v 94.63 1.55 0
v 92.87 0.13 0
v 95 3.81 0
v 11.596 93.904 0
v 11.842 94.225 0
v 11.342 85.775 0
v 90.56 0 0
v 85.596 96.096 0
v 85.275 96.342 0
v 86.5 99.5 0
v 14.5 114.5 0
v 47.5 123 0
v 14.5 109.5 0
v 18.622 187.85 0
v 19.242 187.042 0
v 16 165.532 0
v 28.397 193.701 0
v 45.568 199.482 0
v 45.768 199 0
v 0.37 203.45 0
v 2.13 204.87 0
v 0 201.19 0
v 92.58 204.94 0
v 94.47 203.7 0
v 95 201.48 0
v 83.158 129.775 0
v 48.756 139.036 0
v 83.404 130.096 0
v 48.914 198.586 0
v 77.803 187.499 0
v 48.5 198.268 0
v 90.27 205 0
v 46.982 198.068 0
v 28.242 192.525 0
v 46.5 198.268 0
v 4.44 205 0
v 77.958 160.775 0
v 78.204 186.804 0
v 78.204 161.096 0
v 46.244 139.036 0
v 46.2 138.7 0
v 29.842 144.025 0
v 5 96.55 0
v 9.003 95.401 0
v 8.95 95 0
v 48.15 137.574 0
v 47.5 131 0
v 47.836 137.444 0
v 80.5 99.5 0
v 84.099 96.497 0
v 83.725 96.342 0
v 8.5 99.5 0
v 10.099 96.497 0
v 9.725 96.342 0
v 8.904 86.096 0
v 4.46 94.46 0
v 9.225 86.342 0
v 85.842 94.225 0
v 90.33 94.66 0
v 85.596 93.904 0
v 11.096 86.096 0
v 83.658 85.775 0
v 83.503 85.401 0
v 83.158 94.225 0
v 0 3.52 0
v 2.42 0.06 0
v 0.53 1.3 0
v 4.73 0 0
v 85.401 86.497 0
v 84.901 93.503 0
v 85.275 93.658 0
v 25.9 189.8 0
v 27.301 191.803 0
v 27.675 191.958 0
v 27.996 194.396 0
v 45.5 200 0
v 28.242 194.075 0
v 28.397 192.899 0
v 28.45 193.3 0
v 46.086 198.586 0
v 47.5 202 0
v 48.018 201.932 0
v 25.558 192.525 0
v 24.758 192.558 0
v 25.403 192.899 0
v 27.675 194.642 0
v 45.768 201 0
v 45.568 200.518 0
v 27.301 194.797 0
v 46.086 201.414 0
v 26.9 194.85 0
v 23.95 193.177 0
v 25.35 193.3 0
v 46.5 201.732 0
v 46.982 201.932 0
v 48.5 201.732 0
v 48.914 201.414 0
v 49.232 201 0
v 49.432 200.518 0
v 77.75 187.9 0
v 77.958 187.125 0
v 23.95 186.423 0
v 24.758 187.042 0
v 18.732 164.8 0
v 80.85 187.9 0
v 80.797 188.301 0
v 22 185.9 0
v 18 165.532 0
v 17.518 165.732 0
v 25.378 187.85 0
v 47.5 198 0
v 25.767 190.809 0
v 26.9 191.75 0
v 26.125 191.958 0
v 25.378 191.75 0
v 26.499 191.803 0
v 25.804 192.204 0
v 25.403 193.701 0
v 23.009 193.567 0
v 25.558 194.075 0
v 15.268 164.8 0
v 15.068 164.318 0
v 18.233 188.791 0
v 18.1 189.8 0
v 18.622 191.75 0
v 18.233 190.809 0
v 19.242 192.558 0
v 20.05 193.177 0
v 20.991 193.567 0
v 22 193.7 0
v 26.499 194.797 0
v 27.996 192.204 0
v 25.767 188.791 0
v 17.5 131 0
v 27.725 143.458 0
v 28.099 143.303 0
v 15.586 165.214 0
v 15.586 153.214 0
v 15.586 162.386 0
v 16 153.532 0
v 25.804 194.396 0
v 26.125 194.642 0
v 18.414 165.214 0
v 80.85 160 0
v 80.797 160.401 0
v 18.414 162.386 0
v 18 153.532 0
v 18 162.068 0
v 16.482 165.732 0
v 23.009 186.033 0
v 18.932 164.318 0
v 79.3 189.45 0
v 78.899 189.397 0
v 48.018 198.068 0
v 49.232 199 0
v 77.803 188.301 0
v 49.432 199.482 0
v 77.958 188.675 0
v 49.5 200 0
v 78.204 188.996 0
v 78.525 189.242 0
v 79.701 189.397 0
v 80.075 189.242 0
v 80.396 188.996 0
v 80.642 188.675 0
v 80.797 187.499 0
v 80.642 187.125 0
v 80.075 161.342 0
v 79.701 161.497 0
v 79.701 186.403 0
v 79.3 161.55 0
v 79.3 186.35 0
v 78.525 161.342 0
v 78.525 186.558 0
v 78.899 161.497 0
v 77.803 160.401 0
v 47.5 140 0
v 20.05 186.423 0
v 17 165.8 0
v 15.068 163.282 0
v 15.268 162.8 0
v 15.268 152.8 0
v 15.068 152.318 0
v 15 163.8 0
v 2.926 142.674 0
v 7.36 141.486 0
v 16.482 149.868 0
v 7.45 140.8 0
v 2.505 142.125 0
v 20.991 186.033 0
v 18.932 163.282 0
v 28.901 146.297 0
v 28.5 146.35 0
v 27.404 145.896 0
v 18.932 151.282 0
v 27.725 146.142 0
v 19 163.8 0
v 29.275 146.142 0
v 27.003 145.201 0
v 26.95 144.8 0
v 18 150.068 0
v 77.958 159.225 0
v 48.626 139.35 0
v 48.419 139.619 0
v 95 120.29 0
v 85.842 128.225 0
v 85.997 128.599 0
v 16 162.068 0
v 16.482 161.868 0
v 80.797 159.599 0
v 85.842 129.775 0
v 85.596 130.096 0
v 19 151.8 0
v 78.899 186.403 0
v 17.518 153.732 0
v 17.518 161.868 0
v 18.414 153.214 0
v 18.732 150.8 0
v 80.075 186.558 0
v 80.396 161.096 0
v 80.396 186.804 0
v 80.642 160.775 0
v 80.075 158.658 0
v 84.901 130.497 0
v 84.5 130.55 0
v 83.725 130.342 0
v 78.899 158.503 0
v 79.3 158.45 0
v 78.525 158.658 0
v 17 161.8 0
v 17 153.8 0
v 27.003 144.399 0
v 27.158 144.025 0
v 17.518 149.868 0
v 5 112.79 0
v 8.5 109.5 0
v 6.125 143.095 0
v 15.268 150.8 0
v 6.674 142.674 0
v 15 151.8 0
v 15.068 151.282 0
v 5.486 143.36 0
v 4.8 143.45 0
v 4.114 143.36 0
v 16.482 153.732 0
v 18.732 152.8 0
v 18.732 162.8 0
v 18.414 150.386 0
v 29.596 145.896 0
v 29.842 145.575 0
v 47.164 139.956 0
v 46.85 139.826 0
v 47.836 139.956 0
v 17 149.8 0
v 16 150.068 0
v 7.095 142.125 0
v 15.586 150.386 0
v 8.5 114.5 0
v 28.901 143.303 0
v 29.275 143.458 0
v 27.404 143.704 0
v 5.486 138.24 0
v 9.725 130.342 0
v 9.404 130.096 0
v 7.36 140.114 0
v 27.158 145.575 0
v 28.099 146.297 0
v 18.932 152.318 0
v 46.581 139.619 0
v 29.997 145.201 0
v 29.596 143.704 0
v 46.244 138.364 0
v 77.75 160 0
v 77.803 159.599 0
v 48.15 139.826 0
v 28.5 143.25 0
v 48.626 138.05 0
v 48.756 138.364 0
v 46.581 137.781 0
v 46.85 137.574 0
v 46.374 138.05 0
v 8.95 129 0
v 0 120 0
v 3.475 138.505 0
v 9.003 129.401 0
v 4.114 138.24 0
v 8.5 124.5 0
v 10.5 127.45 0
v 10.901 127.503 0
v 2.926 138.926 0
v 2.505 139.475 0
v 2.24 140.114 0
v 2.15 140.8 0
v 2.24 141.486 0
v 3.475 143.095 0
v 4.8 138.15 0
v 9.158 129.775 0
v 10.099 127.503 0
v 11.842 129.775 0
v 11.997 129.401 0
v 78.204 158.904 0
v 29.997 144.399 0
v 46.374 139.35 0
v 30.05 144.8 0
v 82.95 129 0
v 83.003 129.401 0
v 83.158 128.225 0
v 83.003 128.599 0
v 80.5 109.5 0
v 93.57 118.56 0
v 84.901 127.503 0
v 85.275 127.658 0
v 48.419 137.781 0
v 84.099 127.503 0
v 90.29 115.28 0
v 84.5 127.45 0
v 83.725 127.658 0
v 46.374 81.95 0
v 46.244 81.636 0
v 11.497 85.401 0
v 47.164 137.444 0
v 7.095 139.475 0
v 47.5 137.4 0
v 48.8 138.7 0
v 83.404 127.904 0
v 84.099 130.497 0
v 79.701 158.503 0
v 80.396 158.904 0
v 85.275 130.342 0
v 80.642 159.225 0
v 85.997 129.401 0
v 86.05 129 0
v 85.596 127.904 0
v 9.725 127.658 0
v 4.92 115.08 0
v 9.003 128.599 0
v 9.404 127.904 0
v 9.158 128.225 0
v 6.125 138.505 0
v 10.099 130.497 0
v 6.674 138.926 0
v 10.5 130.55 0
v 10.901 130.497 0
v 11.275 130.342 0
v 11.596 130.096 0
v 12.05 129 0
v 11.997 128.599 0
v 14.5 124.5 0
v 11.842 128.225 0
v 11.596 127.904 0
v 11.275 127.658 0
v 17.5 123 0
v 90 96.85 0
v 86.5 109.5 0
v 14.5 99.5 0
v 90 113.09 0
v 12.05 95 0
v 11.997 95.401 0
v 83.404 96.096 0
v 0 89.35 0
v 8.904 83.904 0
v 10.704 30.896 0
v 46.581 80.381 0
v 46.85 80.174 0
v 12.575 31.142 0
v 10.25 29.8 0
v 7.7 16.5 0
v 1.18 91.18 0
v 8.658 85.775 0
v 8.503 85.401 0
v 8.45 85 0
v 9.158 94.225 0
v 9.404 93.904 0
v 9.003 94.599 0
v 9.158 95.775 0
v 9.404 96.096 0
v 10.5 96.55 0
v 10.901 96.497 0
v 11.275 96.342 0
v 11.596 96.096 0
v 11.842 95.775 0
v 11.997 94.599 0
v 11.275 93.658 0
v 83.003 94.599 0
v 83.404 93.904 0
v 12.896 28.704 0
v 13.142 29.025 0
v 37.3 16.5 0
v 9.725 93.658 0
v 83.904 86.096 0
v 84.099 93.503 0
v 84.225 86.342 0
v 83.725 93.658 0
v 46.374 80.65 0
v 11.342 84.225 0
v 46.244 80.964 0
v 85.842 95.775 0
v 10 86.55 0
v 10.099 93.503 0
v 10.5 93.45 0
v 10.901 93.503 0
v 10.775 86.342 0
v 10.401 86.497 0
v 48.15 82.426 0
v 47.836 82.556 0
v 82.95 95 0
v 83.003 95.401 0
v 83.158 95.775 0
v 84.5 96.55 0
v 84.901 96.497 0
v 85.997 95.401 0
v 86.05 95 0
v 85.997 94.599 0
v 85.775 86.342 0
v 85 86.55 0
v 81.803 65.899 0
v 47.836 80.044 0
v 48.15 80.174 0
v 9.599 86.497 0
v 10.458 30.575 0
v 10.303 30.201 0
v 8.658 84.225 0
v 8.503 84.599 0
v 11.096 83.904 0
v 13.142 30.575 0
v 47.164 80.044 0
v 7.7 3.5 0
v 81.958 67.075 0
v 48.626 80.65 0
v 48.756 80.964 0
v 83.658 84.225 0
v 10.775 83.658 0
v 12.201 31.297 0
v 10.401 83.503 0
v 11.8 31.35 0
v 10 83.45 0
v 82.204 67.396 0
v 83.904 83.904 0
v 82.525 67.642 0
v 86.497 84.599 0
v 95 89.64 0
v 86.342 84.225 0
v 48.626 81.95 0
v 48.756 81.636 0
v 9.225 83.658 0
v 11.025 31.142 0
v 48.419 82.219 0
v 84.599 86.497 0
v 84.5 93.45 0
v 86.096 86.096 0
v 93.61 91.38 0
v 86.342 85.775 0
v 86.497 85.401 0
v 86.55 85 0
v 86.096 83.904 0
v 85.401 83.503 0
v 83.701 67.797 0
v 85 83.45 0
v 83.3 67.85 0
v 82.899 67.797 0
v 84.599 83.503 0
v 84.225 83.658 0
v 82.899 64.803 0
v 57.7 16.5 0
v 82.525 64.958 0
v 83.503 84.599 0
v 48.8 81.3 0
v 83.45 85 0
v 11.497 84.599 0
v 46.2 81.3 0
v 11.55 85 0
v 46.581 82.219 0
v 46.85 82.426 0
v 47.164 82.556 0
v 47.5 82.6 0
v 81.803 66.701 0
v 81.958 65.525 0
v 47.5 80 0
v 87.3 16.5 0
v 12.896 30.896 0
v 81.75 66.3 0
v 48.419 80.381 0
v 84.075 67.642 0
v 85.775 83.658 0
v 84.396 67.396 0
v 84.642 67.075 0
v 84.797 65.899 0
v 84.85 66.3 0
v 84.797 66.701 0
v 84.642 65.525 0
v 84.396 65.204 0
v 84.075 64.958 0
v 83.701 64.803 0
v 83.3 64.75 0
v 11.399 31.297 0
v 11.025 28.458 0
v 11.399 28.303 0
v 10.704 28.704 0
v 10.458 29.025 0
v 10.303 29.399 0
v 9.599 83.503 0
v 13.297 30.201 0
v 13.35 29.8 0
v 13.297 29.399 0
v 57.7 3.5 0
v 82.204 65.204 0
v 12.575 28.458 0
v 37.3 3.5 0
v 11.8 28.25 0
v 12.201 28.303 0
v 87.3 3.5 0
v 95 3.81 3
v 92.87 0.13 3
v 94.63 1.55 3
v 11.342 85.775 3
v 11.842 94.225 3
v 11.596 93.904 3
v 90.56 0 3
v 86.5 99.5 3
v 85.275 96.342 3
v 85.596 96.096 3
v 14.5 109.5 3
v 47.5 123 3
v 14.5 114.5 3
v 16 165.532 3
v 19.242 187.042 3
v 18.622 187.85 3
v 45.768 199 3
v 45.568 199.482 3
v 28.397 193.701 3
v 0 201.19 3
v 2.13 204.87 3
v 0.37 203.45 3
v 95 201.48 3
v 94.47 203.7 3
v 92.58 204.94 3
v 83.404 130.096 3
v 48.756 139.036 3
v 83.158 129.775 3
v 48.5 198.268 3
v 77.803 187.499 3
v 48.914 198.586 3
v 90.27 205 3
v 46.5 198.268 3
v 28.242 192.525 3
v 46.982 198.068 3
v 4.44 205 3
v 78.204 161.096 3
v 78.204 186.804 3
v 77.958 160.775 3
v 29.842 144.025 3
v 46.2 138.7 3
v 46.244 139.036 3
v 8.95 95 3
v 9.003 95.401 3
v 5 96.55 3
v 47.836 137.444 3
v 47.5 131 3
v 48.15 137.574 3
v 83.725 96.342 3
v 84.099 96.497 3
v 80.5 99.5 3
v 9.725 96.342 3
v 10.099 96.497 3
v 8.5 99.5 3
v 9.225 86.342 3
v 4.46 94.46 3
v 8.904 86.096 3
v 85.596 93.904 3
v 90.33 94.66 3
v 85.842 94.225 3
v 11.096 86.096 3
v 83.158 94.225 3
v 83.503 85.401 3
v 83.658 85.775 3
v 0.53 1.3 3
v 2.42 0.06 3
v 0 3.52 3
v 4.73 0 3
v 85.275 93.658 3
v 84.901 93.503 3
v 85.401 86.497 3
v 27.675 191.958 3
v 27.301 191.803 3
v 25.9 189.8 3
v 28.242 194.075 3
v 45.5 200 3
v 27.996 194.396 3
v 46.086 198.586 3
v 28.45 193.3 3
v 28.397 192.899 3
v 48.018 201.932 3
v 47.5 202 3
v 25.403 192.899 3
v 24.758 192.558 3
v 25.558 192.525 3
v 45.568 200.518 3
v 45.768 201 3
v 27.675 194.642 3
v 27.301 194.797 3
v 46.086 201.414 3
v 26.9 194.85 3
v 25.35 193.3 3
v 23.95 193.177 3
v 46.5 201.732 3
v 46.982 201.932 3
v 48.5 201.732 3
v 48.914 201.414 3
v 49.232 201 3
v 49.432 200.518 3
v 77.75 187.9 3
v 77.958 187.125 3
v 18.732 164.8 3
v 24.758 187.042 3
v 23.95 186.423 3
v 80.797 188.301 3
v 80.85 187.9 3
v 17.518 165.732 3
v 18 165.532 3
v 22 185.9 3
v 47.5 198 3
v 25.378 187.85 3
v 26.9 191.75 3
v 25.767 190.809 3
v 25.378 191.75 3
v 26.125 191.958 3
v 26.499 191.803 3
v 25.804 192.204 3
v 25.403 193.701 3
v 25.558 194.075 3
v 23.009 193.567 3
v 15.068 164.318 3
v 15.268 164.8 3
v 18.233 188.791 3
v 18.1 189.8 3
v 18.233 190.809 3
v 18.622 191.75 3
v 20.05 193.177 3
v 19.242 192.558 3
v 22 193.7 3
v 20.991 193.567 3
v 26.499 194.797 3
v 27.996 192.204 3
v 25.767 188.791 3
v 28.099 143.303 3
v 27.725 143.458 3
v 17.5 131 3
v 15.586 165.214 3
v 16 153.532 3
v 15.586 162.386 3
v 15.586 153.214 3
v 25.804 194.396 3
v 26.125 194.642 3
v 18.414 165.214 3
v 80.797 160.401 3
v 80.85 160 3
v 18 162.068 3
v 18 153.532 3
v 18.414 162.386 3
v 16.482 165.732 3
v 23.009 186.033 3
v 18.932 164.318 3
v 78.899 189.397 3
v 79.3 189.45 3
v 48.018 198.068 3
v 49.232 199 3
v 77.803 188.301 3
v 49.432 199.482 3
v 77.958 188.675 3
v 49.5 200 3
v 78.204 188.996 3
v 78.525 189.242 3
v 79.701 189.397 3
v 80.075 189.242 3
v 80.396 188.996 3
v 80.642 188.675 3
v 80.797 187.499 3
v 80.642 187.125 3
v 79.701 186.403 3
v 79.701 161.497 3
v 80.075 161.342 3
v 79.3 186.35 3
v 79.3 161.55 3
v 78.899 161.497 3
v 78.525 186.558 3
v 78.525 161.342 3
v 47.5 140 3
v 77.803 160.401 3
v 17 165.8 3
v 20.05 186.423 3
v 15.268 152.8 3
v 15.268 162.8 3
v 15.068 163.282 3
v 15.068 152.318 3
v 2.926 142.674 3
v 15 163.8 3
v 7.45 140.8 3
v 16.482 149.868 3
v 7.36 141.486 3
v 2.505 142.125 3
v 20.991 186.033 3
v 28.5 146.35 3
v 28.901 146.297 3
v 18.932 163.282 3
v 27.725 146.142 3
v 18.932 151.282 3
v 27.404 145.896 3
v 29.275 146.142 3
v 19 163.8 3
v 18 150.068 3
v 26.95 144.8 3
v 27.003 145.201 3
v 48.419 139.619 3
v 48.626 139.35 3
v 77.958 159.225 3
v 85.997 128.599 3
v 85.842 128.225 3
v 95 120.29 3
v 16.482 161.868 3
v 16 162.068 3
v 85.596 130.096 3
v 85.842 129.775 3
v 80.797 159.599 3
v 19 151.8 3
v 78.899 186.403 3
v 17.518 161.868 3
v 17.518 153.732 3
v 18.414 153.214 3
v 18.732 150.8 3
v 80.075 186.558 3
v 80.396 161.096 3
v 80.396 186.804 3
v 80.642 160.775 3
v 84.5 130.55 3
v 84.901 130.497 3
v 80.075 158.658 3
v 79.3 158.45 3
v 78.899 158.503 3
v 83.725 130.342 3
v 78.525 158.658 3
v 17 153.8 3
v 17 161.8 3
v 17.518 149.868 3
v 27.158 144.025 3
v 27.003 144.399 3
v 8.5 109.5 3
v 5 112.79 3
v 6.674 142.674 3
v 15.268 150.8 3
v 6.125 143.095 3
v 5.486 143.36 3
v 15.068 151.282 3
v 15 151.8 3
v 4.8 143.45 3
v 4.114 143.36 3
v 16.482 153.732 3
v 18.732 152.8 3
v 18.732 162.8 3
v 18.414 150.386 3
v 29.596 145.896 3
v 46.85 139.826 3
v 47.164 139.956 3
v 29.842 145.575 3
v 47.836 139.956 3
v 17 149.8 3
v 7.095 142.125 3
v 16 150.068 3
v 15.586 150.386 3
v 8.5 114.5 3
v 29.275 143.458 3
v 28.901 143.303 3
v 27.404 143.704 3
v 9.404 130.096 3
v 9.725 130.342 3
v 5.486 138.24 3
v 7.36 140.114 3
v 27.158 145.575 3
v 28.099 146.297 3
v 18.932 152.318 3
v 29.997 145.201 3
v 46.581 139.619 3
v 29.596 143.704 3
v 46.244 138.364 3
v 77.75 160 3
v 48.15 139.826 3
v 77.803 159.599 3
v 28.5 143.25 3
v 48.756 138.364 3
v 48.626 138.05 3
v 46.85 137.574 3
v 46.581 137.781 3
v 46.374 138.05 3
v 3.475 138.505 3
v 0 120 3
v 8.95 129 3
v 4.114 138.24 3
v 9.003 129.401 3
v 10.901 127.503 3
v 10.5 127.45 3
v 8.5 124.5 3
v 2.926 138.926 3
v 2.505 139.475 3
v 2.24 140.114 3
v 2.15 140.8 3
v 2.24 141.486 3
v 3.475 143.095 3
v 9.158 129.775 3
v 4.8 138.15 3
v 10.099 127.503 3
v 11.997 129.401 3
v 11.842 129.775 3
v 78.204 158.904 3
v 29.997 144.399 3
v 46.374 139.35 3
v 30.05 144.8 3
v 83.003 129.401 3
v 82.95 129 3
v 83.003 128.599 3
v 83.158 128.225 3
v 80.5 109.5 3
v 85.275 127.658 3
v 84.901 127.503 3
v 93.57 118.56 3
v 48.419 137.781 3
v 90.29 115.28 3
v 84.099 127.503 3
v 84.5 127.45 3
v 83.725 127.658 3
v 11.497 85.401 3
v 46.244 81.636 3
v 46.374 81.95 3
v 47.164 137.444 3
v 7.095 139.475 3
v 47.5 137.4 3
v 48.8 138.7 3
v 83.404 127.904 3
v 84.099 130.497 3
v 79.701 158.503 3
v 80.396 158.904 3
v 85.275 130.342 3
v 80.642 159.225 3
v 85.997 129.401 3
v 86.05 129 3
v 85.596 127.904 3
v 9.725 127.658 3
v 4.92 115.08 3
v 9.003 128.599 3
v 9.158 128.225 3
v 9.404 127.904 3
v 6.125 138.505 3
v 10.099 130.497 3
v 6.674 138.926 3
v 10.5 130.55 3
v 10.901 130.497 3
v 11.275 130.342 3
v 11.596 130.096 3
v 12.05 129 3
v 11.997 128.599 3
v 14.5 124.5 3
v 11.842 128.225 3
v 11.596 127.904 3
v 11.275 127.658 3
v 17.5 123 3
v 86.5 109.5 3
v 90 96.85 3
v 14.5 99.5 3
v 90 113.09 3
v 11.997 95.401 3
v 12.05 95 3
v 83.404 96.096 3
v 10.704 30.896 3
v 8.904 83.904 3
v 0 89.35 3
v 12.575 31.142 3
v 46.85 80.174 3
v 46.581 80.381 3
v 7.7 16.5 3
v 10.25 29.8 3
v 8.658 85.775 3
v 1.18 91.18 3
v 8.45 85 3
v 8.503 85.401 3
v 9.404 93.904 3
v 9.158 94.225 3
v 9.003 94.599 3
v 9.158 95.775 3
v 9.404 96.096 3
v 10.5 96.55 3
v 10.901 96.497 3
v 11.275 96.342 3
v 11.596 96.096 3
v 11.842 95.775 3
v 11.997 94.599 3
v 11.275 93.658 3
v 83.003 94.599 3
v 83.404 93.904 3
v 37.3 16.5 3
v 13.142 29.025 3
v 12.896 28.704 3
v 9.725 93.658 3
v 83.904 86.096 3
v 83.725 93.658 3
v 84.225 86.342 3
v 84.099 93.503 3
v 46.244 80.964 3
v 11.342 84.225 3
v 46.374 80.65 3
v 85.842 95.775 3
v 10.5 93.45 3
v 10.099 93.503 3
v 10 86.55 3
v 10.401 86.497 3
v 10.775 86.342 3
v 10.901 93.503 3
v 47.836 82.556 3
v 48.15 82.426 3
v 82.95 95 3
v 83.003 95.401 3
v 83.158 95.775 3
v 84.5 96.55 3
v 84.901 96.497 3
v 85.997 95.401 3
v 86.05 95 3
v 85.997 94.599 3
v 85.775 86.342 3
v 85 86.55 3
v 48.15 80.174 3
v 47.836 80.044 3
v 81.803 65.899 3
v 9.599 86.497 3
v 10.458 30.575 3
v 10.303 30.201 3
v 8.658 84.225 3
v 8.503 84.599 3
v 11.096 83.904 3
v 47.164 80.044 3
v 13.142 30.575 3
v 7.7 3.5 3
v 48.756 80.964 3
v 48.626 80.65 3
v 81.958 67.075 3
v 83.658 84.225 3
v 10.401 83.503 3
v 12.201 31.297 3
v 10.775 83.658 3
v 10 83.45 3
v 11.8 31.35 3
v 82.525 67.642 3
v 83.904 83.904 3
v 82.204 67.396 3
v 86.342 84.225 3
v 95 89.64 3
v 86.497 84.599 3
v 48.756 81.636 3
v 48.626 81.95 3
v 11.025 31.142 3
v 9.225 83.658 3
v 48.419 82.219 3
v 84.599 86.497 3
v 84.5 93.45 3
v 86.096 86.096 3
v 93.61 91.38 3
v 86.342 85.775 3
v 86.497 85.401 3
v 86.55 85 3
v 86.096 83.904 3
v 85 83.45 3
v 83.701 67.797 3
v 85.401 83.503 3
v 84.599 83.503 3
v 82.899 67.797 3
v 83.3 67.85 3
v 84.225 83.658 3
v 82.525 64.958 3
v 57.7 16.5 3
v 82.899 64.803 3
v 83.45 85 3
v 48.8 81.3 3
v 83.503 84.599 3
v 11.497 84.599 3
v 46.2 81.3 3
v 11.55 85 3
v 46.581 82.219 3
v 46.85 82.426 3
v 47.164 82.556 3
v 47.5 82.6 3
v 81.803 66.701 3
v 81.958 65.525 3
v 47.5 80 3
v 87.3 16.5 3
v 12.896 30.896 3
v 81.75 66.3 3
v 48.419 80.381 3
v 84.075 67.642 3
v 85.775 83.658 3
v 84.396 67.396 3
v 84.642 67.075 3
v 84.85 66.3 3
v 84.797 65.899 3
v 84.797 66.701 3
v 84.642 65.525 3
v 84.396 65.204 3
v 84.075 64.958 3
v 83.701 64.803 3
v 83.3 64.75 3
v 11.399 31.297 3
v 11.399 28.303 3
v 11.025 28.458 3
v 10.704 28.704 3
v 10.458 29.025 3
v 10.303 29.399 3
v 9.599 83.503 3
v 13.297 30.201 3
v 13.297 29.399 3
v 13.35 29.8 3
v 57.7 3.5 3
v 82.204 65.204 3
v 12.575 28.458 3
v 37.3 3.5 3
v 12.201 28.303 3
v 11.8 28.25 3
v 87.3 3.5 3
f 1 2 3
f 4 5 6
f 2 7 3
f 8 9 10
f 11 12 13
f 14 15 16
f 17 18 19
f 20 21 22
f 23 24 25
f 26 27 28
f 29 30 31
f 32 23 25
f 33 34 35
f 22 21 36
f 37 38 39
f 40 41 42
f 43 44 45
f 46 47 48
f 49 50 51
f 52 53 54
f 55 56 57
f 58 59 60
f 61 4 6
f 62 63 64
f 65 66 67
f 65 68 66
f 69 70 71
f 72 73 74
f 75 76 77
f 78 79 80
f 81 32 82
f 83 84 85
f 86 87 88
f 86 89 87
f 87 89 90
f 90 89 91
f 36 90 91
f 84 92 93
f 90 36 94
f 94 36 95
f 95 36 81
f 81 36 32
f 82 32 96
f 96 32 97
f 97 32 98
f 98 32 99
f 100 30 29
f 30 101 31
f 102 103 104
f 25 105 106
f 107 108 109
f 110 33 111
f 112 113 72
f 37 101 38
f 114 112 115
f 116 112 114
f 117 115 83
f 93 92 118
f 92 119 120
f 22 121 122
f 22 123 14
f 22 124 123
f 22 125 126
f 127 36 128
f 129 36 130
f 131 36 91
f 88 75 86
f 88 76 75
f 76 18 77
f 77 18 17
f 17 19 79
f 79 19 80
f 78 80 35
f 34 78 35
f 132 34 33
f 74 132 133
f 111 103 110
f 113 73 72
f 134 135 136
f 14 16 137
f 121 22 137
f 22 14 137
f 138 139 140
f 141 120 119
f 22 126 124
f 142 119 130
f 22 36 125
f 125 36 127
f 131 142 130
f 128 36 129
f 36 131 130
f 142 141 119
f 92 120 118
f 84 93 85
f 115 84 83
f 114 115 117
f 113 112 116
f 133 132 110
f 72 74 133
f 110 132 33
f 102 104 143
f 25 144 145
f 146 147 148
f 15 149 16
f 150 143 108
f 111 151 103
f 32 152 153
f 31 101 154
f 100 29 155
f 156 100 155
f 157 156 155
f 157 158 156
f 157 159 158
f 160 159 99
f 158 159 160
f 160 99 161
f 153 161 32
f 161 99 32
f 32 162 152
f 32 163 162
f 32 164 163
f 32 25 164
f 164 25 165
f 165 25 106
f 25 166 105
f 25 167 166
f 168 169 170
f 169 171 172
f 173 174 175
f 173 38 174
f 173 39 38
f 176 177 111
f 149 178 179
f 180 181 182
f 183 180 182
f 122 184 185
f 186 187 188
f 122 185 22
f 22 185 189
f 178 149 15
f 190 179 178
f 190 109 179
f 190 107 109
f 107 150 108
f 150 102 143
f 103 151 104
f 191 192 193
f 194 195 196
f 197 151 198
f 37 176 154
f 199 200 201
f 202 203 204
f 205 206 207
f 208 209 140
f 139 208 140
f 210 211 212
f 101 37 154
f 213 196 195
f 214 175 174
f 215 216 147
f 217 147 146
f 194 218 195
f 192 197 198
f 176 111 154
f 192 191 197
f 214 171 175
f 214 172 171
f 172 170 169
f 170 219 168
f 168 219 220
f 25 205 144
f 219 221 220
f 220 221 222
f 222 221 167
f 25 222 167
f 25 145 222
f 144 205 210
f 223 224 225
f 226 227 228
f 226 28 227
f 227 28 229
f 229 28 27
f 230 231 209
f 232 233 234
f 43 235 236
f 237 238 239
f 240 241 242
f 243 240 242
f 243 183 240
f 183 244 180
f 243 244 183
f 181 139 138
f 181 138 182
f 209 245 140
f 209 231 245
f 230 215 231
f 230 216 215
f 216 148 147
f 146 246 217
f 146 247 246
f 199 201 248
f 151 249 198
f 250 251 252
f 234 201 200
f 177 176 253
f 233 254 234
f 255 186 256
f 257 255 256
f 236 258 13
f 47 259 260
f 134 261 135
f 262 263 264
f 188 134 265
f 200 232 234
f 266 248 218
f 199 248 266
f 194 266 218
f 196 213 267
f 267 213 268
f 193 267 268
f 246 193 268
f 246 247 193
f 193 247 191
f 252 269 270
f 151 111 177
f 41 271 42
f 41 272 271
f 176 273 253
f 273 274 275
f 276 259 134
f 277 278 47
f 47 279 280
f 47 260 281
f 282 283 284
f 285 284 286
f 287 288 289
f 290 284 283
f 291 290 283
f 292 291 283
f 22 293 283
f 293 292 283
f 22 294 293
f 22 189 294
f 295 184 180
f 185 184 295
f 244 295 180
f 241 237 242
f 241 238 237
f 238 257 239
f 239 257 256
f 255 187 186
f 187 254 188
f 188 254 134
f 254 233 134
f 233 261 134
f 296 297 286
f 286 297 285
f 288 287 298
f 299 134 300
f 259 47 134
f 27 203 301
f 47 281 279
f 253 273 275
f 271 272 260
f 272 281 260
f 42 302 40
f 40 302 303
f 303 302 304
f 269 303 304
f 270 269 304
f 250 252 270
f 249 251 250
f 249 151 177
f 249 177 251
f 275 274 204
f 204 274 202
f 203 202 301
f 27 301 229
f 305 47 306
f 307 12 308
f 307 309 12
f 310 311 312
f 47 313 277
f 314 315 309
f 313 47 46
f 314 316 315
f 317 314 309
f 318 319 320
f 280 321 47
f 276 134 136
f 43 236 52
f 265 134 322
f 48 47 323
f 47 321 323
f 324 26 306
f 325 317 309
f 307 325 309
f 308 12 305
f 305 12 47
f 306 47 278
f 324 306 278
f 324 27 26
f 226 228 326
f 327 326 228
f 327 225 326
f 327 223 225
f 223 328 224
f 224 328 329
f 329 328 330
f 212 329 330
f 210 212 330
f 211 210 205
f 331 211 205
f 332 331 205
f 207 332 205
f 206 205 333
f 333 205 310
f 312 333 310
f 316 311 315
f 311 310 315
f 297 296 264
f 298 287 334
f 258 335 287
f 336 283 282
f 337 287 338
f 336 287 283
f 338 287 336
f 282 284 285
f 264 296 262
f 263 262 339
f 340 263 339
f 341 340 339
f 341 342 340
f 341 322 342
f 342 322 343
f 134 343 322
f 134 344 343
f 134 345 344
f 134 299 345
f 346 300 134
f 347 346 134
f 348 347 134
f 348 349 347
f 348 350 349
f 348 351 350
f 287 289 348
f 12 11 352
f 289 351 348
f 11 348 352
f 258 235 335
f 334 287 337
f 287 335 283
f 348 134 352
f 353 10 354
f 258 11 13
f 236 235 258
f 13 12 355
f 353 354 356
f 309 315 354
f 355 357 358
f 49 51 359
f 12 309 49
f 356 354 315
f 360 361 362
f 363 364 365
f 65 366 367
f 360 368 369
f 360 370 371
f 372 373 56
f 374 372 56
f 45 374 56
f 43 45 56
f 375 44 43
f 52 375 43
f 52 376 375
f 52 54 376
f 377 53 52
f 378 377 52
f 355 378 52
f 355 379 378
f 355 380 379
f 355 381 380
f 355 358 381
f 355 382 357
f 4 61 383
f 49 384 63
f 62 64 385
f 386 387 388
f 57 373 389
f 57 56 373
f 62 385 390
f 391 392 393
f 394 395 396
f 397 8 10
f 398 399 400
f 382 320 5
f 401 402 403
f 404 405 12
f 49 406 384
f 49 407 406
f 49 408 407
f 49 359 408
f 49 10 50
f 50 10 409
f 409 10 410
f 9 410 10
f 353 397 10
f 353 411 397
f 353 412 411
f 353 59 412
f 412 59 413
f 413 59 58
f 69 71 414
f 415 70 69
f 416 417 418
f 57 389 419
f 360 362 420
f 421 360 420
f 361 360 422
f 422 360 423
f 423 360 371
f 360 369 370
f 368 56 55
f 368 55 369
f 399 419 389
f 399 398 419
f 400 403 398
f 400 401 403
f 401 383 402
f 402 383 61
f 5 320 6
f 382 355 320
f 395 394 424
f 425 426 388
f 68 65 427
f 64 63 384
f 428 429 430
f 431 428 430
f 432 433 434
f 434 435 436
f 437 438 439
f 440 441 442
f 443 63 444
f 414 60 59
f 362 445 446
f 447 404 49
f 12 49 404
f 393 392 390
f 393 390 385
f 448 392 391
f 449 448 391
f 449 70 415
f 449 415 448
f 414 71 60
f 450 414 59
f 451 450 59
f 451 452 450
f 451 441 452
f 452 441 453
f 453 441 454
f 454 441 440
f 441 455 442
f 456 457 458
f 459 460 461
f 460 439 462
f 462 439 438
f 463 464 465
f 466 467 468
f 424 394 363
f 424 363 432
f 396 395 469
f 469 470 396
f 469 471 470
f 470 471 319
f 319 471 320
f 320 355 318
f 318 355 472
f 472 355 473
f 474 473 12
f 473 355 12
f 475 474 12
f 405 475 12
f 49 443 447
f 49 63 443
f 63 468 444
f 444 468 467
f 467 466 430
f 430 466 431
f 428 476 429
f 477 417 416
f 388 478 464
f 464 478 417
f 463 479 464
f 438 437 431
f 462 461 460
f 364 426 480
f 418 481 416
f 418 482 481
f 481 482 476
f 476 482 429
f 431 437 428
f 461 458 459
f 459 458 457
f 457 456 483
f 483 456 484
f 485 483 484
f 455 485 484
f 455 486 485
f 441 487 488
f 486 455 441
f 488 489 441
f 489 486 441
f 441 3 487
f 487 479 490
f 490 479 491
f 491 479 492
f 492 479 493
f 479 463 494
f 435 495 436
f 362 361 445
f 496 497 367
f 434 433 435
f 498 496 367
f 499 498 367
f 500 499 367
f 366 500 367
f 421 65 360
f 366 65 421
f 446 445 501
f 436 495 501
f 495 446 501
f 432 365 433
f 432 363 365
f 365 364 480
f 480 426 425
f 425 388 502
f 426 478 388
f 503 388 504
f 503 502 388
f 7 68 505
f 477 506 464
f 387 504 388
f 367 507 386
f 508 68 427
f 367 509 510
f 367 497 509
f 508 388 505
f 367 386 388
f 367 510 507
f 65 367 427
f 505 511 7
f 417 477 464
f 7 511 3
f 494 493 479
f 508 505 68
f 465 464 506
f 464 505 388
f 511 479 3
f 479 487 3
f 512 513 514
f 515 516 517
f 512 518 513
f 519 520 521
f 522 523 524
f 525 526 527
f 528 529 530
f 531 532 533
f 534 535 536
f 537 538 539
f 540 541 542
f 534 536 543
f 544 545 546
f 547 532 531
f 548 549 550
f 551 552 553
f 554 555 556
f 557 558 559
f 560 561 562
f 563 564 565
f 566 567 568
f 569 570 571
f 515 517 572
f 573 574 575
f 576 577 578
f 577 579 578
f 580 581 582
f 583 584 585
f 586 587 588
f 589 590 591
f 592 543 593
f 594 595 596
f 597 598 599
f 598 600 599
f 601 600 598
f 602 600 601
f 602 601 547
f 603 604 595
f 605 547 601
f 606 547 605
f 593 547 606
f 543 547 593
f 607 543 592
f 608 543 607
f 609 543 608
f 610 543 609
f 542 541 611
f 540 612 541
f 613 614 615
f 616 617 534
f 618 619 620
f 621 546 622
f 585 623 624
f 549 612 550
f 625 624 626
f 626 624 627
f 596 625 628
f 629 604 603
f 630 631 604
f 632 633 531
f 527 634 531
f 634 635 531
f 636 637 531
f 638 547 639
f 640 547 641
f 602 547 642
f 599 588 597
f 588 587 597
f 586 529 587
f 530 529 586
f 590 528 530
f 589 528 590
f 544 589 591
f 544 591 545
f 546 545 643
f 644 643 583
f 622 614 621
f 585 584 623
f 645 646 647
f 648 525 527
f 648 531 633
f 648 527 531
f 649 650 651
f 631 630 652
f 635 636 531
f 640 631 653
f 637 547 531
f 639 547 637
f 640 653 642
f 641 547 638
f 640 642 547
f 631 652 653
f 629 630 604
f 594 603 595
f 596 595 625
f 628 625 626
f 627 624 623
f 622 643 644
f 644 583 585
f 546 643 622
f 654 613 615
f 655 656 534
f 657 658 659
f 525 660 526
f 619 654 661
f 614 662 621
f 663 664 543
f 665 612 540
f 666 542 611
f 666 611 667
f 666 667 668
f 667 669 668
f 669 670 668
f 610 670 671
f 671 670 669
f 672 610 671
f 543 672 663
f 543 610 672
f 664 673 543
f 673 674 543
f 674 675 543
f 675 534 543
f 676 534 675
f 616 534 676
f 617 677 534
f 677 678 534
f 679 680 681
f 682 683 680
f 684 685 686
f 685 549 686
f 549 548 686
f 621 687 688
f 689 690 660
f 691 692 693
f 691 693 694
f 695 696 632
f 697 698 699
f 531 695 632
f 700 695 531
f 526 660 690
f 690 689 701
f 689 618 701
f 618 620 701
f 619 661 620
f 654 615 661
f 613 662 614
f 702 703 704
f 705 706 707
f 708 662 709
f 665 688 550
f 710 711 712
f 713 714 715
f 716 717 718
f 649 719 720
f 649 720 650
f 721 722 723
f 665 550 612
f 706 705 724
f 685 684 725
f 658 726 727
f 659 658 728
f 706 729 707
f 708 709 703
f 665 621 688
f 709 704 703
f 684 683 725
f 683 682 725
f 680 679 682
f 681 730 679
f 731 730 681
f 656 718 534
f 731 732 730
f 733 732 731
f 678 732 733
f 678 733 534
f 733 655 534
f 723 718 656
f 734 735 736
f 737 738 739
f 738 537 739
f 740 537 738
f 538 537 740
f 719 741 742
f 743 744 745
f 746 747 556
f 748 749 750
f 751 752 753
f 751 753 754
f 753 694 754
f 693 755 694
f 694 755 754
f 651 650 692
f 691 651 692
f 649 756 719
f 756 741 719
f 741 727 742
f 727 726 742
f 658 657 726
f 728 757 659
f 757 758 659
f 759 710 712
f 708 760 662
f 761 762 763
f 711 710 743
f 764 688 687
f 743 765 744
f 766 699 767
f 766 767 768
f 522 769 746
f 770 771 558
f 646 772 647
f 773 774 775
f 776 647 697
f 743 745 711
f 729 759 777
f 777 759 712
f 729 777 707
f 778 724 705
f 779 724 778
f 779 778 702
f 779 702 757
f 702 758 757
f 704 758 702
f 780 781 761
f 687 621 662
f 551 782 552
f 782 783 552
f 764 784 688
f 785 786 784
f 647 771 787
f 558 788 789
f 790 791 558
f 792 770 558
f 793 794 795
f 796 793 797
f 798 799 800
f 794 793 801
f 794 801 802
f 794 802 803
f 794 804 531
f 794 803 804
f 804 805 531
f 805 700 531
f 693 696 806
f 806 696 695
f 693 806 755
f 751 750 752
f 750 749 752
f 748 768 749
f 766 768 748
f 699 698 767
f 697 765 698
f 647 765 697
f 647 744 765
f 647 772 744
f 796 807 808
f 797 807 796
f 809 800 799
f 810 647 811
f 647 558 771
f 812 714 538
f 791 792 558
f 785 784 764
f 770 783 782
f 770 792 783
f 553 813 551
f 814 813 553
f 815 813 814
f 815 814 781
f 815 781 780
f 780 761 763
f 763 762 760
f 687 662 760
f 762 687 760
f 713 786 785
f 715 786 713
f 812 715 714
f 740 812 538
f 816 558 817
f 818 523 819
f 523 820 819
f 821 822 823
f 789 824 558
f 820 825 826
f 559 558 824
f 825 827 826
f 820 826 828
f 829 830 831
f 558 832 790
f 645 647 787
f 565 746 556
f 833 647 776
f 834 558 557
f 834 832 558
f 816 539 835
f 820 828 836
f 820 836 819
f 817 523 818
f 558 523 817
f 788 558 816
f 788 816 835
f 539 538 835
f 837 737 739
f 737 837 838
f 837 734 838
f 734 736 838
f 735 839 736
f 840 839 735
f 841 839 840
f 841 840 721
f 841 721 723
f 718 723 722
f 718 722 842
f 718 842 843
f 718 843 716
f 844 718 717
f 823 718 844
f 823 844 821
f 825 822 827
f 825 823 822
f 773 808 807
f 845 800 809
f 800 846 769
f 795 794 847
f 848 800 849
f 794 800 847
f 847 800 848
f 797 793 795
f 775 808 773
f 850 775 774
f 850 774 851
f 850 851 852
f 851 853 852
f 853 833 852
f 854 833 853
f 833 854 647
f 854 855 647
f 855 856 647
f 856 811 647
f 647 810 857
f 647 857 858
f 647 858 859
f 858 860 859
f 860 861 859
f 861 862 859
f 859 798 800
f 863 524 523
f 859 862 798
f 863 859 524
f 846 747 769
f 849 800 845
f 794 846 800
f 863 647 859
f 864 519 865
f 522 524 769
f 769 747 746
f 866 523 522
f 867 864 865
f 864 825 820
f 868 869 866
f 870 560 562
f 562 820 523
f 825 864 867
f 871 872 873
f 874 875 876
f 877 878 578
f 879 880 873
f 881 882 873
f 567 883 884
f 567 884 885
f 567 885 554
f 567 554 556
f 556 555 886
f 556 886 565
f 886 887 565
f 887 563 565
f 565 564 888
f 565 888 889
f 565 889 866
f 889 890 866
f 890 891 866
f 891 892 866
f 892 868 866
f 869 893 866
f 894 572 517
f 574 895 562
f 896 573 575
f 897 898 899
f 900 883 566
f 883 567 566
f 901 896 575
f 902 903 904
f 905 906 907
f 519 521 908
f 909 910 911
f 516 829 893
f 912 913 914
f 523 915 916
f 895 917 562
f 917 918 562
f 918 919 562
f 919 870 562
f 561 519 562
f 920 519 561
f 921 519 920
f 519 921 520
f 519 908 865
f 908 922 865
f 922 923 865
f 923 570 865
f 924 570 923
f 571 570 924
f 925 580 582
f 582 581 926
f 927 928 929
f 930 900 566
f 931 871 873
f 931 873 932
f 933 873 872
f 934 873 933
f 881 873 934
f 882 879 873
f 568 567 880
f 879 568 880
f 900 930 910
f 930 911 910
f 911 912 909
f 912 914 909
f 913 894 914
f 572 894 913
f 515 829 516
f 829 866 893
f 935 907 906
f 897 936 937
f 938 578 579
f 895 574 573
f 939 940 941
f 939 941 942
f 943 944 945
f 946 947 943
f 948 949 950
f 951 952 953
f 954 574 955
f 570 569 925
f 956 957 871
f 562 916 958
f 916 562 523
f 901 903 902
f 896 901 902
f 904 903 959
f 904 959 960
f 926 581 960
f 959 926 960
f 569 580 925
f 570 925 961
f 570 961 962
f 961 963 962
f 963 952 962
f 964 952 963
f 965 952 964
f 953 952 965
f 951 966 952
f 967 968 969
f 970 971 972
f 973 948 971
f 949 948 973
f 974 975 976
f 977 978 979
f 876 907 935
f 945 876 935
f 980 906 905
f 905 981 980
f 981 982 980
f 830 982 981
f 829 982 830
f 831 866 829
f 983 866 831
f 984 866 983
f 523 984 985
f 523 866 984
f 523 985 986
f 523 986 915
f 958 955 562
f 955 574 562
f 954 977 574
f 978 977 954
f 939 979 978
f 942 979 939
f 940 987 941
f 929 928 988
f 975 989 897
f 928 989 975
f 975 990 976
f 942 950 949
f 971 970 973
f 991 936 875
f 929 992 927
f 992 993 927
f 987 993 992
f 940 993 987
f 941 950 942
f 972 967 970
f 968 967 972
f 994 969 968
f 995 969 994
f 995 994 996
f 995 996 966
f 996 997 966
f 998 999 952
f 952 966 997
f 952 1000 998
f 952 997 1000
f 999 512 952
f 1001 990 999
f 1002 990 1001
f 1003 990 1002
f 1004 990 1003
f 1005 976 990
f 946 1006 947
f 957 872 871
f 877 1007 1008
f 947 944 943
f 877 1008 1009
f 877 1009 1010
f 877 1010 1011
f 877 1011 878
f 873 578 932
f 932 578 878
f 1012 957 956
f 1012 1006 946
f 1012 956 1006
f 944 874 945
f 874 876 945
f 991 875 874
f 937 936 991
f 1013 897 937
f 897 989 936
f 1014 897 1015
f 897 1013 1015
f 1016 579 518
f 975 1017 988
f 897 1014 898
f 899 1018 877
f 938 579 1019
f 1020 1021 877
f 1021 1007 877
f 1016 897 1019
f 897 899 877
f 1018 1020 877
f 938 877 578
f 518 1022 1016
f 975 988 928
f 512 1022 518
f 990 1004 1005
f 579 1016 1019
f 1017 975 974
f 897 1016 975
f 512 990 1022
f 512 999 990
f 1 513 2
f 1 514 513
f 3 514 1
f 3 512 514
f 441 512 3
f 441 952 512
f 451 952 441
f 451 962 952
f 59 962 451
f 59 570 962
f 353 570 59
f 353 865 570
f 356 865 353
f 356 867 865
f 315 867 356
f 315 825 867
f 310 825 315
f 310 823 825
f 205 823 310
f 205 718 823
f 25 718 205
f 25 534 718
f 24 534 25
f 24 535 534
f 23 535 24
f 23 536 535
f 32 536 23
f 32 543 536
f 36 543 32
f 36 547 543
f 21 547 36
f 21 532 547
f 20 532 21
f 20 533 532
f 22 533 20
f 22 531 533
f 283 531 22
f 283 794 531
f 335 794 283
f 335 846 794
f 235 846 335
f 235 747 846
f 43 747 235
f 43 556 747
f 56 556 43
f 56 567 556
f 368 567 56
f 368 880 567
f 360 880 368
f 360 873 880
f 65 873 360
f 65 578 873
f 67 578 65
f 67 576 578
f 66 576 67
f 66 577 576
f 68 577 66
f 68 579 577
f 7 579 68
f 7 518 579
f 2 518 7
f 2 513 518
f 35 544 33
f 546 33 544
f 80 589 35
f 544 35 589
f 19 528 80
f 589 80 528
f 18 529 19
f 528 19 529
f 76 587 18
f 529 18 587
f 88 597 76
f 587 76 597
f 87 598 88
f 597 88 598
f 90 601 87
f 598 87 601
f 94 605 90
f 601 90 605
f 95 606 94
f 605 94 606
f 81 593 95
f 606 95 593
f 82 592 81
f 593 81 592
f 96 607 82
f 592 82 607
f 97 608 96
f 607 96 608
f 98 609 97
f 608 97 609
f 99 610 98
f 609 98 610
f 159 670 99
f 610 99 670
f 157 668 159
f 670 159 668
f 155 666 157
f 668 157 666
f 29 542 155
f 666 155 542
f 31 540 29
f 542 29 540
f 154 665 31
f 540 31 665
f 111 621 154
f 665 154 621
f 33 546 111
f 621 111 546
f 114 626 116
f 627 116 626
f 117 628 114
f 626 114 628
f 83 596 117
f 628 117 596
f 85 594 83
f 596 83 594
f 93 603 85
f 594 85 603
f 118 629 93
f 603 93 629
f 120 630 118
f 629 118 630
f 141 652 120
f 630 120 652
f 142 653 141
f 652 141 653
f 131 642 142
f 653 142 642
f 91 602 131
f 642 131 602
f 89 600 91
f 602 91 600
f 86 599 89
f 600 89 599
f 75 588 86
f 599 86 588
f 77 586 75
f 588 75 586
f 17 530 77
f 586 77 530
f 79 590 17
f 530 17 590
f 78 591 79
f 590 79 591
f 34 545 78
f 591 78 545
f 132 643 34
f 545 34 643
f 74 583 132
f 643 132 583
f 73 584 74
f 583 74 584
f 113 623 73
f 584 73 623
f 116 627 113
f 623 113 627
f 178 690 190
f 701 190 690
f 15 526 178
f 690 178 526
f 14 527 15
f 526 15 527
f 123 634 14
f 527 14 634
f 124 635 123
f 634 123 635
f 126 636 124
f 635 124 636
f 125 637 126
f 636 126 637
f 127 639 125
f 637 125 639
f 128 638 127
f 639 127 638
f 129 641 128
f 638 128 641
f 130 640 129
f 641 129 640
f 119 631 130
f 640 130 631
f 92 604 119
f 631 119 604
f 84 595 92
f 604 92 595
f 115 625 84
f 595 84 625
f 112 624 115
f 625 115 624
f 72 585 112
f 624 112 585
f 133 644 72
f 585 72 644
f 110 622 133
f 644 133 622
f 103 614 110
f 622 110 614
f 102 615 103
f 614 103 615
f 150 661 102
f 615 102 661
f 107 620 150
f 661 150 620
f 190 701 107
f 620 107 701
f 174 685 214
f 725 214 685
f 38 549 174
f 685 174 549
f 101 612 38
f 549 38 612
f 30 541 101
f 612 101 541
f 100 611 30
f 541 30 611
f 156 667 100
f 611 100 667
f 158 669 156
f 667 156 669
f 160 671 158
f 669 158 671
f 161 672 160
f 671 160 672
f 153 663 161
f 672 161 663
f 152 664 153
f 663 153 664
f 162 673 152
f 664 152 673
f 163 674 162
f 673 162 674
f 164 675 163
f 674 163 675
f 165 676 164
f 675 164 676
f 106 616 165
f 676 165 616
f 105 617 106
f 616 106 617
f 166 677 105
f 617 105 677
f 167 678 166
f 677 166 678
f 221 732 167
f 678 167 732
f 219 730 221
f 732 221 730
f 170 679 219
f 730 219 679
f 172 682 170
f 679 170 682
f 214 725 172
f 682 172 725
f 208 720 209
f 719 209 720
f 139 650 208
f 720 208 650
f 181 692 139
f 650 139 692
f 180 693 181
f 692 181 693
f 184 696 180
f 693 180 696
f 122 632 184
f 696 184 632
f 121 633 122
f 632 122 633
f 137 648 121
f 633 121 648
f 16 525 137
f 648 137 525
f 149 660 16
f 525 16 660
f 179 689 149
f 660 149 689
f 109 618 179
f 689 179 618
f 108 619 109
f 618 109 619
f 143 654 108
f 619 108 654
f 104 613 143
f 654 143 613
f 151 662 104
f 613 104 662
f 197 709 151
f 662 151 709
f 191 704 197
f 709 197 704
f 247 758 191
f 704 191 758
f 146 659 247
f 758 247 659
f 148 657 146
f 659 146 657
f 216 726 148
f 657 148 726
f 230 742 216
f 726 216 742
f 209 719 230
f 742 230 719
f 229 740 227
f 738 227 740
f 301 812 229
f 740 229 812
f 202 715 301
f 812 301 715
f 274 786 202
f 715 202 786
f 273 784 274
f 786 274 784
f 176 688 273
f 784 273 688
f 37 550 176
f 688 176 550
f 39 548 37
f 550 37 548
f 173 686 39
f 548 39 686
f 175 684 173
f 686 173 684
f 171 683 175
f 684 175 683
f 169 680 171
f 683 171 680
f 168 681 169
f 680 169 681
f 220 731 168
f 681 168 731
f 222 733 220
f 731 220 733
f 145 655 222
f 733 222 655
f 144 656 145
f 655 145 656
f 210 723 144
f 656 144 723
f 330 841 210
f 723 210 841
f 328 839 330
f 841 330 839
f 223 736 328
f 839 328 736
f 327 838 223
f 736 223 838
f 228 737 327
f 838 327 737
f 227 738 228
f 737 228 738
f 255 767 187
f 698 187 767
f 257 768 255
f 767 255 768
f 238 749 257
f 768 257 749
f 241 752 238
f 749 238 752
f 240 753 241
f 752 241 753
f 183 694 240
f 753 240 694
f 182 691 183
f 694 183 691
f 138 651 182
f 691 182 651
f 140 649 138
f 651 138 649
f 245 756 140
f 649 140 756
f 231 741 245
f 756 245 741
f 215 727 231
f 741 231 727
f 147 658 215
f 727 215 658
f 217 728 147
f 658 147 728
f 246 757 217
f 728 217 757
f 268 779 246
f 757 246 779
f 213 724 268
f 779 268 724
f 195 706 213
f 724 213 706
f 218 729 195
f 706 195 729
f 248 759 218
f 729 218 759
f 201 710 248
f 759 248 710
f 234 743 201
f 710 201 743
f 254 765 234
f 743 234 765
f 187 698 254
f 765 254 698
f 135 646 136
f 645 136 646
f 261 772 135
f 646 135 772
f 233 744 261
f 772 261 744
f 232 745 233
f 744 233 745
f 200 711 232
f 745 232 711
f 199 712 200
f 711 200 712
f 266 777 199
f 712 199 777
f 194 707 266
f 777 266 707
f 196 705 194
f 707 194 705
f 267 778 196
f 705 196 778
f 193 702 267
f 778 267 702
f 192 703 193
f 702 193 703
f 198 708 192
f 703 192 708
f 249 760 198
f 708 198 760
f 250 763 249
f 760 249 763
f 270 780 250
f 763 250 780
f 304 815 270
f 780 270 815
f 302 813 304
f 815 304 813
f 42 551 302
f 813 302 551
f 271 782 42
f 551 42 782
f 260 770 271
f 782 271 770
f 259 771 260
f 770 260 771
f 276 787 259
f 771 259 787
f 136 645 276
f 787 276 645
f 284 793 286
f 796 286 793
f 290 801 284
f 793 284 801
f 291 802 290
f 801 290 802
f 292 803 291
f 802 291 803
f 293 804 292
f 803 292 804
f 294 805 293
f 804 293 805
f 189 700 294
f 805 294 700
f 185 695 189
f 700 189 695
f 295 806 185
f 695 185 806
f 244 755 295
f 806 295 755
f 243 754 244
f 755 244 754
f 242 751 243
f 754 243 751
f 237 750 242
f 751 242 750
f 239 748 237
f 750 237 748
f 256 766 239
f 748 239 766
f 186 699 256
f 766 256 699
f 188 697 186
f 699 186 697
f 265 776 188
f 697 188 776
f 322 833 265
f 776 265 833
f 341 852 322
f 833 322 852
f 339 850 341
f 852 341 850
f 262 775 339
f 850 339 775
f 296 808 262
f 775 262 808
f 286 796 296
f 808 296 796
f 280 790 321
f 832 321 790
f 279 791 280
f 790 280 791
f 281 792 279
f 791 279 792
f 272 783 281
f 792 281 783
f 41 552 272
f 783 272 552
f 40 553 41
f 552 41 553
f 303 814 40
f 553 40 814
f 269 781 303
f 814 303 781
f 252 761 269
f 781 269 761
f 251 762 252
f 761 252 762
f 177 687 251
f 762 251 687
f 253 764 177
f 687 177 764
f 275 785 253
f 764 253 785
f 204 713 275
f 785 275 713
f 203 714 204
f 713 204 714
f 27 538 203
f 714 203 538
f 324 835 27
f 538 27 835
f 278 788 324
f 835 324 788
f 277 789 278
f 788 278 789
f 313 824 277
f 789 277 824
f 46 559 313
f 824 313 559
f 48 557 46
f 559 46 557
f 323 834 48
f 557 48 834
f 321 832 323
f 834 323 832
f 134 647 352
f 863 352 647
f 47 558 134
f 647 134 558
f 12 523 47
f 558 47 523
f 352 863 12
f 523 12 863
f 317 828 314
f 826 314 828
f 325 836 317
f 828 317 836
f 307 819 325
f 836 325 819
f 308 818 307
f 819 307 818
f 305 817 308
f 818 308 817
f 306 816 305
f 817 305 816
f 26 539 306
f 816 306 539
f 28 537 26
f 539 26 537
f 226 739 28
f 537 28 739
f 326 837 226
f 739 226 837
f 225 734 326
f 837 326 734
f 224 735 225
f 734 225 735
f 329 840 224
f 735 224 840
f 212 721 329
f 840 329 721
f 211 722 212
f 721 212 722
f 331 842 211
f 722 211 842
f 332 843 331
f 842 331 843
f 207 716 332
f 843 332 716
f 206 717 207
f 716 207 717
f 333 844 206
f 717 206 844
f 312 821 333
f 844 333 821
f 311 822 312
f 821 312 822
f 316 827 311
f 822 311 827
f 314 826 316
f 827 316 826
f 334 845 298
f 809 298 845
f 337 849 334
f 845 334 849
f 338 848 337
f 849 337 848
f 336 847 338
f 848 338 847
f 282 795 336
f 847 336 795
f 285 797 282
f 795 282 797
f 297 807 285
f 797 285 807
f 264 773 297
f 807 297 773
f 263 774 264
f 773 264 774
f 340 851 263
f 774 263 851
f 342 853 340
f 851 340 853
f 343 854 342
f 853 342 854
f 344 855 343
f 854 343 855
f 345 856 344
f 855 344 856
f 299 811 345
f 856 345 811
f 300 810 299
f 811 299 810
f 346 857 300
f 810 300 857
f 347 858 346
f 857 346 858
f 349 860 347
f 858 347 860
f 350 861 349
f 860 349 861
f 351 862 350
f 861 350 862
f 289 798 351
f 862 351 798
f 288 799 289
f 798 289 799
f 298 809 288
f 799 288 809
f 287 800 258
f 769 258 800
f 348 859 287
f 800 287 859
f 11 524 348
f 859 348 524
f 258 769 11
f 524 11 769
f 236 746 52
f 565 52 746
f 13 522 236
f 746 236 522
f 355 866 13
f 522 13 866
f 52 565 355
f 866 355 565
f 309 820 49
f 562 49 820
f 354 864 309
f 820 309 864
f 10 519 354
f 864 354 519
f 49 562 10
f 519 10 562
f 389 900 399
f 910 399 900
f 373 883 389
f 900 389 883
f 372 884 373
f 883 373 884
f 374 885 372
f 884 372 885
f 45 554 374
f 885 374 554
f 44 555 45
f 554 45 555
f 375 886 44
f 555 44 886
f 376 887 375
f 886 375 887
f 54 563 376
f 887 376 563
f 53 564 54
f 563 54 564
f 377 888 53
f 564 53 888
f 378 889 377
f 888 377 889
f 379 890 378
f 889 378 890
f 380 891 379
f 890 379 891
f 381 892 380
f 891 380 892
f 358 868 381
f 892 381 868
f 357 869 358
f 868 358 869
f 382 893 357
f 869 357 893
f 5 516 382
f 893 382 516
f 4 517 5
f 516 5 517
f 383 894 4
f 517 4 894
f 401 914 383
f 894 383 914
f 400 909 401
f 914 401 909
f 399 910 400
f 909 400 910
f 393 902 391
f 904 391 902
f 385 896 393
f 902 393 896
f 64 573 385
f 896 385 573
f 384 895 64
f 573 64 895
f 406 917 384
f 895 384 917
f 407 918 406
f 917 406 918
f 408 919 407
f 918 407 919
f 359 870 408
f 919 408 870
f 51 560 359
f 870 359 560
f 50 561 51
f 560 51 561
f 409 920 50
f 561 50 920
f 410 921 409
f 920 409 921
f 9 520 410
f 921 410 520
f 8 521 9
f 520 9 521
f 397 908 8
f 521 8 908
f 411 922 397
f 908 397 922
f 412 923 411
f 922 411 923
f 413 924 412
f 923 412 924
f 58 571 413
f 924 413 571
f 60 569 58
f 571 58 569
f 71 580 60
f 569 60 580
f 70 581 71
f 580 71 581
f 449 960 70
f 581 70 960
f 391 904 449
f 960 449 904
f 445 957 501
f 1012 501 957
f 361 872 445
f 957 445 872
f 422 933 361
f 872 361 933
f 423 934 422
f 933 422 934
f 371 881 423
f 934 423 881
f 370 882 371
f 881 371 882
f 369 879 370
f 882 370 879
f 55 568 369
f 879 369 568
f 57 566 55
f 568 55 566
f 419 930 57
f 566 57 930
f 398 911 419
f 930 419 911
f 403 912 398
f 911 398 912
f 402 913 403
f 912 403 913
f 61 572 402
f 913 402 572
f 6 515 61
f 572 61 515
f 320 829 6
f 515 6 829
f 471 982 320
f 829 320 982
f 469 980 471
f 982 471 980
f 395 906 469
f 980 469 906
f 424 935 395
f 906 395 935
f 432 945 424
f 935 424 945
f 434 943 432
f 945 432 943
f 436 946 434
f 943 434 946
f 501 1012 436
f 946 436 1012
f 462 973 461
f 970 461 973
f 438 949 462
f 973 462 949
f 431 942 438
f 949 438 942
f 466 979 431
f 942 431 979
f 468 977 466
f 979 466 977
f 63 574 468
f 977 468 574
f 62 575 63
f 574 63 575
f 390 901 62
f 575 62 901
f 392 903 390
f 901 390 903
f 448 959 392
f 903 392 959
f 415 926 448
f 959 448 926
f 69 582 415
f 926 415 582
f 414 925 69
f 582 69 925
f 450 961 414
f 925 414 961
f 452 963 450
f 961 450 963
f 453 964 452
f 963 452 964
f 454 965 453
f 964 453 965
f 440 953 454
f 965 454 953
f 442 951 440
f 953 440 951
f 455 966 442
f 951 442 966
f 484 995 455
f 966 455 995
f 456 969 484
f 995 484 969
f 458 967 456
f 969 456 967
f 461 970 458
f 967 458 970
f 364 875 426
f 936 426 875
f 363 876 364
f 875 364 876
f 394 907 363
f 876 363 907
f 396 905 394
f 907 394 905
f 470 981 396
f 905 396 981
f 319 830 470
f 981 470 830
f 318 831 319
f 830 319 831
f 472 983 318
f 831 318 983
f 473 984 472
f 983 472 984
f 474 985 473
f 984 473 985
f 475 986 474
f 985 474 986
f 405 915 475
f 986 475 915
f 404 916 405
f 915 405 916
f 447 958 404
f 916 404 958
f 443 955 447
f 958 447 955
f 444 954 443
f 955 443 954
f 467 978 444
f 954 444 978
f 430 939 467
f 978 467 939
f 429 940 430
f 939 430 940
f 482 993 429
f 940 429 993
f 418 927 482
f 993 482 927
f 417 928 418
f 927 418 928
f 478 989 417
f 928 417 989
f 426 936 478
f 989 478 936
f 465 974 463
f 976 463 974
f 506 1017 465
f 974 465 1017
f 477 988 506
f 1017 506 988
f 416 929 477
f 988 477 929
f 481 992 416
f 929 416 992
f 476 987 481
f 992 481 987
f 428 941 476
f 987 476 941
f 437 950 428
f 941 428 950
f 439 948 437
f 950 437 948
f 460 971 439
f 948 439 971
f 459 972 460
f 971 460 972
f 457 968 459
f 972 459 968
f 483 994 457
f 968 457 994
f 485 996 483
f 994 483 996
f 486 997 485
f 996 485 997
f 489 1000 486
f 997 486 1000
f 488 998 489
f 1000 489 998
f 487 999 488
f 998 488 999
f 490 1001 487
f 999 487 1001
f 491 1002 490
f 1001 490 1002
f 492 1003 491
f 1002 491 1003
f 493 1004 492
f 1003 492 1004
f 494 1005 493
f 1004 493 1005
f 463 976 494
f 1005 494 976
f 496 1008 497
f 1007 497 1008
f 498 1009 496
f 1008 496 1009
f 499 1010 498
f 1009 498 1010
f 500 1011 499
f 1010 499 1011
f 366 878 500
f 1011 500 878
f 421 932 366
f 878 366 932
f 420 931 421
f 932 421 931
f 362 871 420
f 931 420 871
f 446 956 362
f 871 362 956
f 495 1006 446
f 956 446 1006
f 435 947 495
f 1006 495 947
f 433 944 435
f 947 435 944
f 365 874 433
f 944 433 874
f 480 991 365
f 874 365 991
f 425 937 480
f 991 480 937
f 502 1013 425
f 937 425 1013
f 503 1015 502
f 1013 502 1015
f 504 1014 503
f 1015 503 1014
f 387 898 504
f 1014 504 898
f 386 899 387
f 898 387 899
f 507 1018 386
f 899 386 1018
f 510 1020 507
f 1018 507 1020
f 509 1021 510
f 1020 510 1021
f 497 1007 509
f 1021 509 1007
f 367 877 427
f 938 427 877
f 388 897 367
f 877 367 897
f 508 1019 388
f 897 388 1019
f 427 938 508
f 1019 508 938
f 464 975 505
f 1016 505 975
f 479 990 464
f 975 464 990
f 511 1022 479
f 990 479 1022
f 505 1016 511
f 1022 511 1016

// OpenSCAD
// chassis.scad - EXACT EEEBug V3.1 outline, holes & cut-outs from chassis.svg
// Auto-generated (svgelements, 96dpi -> mm). y=0 is the motor-slot (front) edge.
CH_THK = 3.0;

CHASSIS_OUTLINE = [
  [0,120], [1.64,118.36], [3.28,116.72], [4.92,115.08], [5,112.79], [5,110.47], [5,108.15], [5,105.83], [5,103.51], [5,101.19], [5,98.87], [5,96.55], [4.46,94.46], [2.82,92.82], [1.18,91.18], [0,89.35], [0,87.03], [0,84.71], [0,82.39], [0,80.07], [0,77.75], [0,75.43], [0,73.11], [0,70.79], [0,68.47], [0,66.15], [0,63.83], [0,61.51], [0,59.19], [0,56.87], [0,54.55], [0,52.23], [0,49.91], [0,47.59], [0,45.27], [0,42.95], [0,40.63], [0,38.31], [0,35.99], [0,33.67], [0,31.35], [0,29.03], [0,26.71], [0,24.39], [0,22.07], [0,19.75], [0,17.43], [0,15.11], [0,12.79], [0,10.47], [0,8.15], [0,5.84], [0,3.52], [0.53,1.3], [2.42,0.06], [4.73,0], [7.05,0], [9.37,0], [11.69,0], [14.01,0], [16.33,0], [18.65,0], [20.97,0], [23.29,0], [25.61,0], [27.93,0], [30.25,0], [32.57,0], [34.89,0], [37.21,0], [39.53,0], [41.85,0], [44.17,0], [46.49,0], [48.81,0], [51.13,0], [53.45,0], [55.77,0], [58.09,0], [60.41,0], [62.73,0], [65.04,0], [67.36,0], [69.68,0], [72,0], [74.32,0], [76.64,0], [78.96,0], [81.28,0], [83.6,0], [85.92,0], [88.24,0], [90.56,0], [92.87,0.13], [94.63,1.55], [95,3.81], [95,6.13], [95,8.45], [95,10.77], [95,13.09], [95,15.41], [95,17.73], [95,20.05], [95,22.37], [95,24.69], [95,27.01], [95,29.33], [95,31.65], [95,33.97], [95,36.29], [95,38.61], [95,40.92], [95,43.24], [95,45.56], [95,47.88], [95,50.2], [95,52.52], [95,54.84], [95,57.16], [95,59.48], [95,61.8], [95,64.12], [95,66.44], [95,68.76], [95,71.08], [95,73.4], [95,75.72], [95,78.04], [95,80.36], [95,82.68], [95,85], [95,87.32], [95,89.64], [93.61,91.38], [91.97,93.02], [90.33,94.66], [90,96.85], [90,99.17], [90,101.49], [90,103.81], [90,106.13], [90,108.45], [90,110.77], [90,113.09], [90.29,115.28], [91.93,116.92], [93.57,118.56], [95,120.29], [95,122.61], [95,124.93], [95,127.25], [95,129.57], [95,131.89], [95,134.21], [95,136.53], [95,138.85], [95,141.17], [95,143.49], [95,145.81], [95,148.13], [95,150.45], [95,152.77], [95,155.09], [95,157.41], [95,159.73], [95,162.05], [95,164.37], [95,166.69], [95,169.01], [95,171.33], [95,173.65], [95,175.97], [95,178.29], [95,180.61], [95,182.93], [95,185.25], [95,187.57], [95,189.89], [95,192.21], [95,194.53], [95,196.85], [95,199.17], [95,201.48], [94.47,203.7], [92.58,204.94], [90.27,205], [87.95,205], [85.63,205], [83.31,205], [80.99,205], [78.67,205], [76.35,205], [74.03,205], [71.71,205], [69.39,205], [67.07,205], [64.75,205], [62.43,205], [60.11,205], [57.79,205], [55.47,205], [53.15,205], [50.83,205], [48.51,205], [46.19,205], [43.87,205], [41.55,205], [39.23,205], [36.91,205], [34.59,205], [32.27,205], [29.96,205], [27.64,205], [25.32,205], [23,205], [20.68,205], [18.36,205], [16.04,205], [13.72,205], [11.4,205], [9.08,205], [6.76,205], [4.44,205], [2.13,204.87], [0.37,203.45], [0,201.19], [0,198.87], [0,196.55], [0,194.23], [0,191.91], [0,189.59], [0,187.27], [0,184.95], [0,182.63], [0,180.31], [0,177.99], [0,175.67], [0,173.35], [0,171.03], [0,168.71], [0,166.39], [0,164.08], [0,161.76], [0,159.44], [0,157.12], [0,154.8], [0,152.48], [0,150.16], [0,147.84], [0,145.52], [0,143.2], [0,140.88], [0,138.56], [0,136.24], [0,133.92], [0,131.6], [0,129.28], [0,126.96], [0,124.64], [0,122.32]
];
CHASSIS_HOLES = [   // [x, y, dia]
  [47.5,200,4], [22,189.8,7.8], [79.3,160,3.1], [79.3,187.9,3.1], [28.5,144.8,3.1], [17,151.8,4], [26.9,193.3,3.1], [11.8,29.8,3.1], [83.3,66.3,3.1], [10.5,95,3.1], [84.5,95,3.1], [84.5,129,3.1], [10.5,129,3.1], [17,163.8,4], [47.5,138.7,2.6], [47.5,81.3,2.6], [10,85,3.1], [85,85,3.1], [4.8,140.8,5.3]
];
CHASSIS_CUTOUTS = [ // [x, y, w, h]
  [7.7,3.5,29.6,13], [57.7,3.5,29.6,13], [8.5,99.5,6,10], [80.5,99.5,6,10], [8.5,114.5,6,10], [17.5,123,30,8]
];

module real_chassis(){
  eps=0.05;
  linear_extrude(CH_THK) difference(){
    polygon(CHASSIS_OUTLINE);
    for(h=CHASSIS_HOLES) translate([h[0],h[1]]) circle(d=h[2],$fn=24);
    for(c=CHASSIS_CUTOUTS) translate([c[0],c[1]]) square([c[2],c[3]]);
  }
}
real_chassis();
